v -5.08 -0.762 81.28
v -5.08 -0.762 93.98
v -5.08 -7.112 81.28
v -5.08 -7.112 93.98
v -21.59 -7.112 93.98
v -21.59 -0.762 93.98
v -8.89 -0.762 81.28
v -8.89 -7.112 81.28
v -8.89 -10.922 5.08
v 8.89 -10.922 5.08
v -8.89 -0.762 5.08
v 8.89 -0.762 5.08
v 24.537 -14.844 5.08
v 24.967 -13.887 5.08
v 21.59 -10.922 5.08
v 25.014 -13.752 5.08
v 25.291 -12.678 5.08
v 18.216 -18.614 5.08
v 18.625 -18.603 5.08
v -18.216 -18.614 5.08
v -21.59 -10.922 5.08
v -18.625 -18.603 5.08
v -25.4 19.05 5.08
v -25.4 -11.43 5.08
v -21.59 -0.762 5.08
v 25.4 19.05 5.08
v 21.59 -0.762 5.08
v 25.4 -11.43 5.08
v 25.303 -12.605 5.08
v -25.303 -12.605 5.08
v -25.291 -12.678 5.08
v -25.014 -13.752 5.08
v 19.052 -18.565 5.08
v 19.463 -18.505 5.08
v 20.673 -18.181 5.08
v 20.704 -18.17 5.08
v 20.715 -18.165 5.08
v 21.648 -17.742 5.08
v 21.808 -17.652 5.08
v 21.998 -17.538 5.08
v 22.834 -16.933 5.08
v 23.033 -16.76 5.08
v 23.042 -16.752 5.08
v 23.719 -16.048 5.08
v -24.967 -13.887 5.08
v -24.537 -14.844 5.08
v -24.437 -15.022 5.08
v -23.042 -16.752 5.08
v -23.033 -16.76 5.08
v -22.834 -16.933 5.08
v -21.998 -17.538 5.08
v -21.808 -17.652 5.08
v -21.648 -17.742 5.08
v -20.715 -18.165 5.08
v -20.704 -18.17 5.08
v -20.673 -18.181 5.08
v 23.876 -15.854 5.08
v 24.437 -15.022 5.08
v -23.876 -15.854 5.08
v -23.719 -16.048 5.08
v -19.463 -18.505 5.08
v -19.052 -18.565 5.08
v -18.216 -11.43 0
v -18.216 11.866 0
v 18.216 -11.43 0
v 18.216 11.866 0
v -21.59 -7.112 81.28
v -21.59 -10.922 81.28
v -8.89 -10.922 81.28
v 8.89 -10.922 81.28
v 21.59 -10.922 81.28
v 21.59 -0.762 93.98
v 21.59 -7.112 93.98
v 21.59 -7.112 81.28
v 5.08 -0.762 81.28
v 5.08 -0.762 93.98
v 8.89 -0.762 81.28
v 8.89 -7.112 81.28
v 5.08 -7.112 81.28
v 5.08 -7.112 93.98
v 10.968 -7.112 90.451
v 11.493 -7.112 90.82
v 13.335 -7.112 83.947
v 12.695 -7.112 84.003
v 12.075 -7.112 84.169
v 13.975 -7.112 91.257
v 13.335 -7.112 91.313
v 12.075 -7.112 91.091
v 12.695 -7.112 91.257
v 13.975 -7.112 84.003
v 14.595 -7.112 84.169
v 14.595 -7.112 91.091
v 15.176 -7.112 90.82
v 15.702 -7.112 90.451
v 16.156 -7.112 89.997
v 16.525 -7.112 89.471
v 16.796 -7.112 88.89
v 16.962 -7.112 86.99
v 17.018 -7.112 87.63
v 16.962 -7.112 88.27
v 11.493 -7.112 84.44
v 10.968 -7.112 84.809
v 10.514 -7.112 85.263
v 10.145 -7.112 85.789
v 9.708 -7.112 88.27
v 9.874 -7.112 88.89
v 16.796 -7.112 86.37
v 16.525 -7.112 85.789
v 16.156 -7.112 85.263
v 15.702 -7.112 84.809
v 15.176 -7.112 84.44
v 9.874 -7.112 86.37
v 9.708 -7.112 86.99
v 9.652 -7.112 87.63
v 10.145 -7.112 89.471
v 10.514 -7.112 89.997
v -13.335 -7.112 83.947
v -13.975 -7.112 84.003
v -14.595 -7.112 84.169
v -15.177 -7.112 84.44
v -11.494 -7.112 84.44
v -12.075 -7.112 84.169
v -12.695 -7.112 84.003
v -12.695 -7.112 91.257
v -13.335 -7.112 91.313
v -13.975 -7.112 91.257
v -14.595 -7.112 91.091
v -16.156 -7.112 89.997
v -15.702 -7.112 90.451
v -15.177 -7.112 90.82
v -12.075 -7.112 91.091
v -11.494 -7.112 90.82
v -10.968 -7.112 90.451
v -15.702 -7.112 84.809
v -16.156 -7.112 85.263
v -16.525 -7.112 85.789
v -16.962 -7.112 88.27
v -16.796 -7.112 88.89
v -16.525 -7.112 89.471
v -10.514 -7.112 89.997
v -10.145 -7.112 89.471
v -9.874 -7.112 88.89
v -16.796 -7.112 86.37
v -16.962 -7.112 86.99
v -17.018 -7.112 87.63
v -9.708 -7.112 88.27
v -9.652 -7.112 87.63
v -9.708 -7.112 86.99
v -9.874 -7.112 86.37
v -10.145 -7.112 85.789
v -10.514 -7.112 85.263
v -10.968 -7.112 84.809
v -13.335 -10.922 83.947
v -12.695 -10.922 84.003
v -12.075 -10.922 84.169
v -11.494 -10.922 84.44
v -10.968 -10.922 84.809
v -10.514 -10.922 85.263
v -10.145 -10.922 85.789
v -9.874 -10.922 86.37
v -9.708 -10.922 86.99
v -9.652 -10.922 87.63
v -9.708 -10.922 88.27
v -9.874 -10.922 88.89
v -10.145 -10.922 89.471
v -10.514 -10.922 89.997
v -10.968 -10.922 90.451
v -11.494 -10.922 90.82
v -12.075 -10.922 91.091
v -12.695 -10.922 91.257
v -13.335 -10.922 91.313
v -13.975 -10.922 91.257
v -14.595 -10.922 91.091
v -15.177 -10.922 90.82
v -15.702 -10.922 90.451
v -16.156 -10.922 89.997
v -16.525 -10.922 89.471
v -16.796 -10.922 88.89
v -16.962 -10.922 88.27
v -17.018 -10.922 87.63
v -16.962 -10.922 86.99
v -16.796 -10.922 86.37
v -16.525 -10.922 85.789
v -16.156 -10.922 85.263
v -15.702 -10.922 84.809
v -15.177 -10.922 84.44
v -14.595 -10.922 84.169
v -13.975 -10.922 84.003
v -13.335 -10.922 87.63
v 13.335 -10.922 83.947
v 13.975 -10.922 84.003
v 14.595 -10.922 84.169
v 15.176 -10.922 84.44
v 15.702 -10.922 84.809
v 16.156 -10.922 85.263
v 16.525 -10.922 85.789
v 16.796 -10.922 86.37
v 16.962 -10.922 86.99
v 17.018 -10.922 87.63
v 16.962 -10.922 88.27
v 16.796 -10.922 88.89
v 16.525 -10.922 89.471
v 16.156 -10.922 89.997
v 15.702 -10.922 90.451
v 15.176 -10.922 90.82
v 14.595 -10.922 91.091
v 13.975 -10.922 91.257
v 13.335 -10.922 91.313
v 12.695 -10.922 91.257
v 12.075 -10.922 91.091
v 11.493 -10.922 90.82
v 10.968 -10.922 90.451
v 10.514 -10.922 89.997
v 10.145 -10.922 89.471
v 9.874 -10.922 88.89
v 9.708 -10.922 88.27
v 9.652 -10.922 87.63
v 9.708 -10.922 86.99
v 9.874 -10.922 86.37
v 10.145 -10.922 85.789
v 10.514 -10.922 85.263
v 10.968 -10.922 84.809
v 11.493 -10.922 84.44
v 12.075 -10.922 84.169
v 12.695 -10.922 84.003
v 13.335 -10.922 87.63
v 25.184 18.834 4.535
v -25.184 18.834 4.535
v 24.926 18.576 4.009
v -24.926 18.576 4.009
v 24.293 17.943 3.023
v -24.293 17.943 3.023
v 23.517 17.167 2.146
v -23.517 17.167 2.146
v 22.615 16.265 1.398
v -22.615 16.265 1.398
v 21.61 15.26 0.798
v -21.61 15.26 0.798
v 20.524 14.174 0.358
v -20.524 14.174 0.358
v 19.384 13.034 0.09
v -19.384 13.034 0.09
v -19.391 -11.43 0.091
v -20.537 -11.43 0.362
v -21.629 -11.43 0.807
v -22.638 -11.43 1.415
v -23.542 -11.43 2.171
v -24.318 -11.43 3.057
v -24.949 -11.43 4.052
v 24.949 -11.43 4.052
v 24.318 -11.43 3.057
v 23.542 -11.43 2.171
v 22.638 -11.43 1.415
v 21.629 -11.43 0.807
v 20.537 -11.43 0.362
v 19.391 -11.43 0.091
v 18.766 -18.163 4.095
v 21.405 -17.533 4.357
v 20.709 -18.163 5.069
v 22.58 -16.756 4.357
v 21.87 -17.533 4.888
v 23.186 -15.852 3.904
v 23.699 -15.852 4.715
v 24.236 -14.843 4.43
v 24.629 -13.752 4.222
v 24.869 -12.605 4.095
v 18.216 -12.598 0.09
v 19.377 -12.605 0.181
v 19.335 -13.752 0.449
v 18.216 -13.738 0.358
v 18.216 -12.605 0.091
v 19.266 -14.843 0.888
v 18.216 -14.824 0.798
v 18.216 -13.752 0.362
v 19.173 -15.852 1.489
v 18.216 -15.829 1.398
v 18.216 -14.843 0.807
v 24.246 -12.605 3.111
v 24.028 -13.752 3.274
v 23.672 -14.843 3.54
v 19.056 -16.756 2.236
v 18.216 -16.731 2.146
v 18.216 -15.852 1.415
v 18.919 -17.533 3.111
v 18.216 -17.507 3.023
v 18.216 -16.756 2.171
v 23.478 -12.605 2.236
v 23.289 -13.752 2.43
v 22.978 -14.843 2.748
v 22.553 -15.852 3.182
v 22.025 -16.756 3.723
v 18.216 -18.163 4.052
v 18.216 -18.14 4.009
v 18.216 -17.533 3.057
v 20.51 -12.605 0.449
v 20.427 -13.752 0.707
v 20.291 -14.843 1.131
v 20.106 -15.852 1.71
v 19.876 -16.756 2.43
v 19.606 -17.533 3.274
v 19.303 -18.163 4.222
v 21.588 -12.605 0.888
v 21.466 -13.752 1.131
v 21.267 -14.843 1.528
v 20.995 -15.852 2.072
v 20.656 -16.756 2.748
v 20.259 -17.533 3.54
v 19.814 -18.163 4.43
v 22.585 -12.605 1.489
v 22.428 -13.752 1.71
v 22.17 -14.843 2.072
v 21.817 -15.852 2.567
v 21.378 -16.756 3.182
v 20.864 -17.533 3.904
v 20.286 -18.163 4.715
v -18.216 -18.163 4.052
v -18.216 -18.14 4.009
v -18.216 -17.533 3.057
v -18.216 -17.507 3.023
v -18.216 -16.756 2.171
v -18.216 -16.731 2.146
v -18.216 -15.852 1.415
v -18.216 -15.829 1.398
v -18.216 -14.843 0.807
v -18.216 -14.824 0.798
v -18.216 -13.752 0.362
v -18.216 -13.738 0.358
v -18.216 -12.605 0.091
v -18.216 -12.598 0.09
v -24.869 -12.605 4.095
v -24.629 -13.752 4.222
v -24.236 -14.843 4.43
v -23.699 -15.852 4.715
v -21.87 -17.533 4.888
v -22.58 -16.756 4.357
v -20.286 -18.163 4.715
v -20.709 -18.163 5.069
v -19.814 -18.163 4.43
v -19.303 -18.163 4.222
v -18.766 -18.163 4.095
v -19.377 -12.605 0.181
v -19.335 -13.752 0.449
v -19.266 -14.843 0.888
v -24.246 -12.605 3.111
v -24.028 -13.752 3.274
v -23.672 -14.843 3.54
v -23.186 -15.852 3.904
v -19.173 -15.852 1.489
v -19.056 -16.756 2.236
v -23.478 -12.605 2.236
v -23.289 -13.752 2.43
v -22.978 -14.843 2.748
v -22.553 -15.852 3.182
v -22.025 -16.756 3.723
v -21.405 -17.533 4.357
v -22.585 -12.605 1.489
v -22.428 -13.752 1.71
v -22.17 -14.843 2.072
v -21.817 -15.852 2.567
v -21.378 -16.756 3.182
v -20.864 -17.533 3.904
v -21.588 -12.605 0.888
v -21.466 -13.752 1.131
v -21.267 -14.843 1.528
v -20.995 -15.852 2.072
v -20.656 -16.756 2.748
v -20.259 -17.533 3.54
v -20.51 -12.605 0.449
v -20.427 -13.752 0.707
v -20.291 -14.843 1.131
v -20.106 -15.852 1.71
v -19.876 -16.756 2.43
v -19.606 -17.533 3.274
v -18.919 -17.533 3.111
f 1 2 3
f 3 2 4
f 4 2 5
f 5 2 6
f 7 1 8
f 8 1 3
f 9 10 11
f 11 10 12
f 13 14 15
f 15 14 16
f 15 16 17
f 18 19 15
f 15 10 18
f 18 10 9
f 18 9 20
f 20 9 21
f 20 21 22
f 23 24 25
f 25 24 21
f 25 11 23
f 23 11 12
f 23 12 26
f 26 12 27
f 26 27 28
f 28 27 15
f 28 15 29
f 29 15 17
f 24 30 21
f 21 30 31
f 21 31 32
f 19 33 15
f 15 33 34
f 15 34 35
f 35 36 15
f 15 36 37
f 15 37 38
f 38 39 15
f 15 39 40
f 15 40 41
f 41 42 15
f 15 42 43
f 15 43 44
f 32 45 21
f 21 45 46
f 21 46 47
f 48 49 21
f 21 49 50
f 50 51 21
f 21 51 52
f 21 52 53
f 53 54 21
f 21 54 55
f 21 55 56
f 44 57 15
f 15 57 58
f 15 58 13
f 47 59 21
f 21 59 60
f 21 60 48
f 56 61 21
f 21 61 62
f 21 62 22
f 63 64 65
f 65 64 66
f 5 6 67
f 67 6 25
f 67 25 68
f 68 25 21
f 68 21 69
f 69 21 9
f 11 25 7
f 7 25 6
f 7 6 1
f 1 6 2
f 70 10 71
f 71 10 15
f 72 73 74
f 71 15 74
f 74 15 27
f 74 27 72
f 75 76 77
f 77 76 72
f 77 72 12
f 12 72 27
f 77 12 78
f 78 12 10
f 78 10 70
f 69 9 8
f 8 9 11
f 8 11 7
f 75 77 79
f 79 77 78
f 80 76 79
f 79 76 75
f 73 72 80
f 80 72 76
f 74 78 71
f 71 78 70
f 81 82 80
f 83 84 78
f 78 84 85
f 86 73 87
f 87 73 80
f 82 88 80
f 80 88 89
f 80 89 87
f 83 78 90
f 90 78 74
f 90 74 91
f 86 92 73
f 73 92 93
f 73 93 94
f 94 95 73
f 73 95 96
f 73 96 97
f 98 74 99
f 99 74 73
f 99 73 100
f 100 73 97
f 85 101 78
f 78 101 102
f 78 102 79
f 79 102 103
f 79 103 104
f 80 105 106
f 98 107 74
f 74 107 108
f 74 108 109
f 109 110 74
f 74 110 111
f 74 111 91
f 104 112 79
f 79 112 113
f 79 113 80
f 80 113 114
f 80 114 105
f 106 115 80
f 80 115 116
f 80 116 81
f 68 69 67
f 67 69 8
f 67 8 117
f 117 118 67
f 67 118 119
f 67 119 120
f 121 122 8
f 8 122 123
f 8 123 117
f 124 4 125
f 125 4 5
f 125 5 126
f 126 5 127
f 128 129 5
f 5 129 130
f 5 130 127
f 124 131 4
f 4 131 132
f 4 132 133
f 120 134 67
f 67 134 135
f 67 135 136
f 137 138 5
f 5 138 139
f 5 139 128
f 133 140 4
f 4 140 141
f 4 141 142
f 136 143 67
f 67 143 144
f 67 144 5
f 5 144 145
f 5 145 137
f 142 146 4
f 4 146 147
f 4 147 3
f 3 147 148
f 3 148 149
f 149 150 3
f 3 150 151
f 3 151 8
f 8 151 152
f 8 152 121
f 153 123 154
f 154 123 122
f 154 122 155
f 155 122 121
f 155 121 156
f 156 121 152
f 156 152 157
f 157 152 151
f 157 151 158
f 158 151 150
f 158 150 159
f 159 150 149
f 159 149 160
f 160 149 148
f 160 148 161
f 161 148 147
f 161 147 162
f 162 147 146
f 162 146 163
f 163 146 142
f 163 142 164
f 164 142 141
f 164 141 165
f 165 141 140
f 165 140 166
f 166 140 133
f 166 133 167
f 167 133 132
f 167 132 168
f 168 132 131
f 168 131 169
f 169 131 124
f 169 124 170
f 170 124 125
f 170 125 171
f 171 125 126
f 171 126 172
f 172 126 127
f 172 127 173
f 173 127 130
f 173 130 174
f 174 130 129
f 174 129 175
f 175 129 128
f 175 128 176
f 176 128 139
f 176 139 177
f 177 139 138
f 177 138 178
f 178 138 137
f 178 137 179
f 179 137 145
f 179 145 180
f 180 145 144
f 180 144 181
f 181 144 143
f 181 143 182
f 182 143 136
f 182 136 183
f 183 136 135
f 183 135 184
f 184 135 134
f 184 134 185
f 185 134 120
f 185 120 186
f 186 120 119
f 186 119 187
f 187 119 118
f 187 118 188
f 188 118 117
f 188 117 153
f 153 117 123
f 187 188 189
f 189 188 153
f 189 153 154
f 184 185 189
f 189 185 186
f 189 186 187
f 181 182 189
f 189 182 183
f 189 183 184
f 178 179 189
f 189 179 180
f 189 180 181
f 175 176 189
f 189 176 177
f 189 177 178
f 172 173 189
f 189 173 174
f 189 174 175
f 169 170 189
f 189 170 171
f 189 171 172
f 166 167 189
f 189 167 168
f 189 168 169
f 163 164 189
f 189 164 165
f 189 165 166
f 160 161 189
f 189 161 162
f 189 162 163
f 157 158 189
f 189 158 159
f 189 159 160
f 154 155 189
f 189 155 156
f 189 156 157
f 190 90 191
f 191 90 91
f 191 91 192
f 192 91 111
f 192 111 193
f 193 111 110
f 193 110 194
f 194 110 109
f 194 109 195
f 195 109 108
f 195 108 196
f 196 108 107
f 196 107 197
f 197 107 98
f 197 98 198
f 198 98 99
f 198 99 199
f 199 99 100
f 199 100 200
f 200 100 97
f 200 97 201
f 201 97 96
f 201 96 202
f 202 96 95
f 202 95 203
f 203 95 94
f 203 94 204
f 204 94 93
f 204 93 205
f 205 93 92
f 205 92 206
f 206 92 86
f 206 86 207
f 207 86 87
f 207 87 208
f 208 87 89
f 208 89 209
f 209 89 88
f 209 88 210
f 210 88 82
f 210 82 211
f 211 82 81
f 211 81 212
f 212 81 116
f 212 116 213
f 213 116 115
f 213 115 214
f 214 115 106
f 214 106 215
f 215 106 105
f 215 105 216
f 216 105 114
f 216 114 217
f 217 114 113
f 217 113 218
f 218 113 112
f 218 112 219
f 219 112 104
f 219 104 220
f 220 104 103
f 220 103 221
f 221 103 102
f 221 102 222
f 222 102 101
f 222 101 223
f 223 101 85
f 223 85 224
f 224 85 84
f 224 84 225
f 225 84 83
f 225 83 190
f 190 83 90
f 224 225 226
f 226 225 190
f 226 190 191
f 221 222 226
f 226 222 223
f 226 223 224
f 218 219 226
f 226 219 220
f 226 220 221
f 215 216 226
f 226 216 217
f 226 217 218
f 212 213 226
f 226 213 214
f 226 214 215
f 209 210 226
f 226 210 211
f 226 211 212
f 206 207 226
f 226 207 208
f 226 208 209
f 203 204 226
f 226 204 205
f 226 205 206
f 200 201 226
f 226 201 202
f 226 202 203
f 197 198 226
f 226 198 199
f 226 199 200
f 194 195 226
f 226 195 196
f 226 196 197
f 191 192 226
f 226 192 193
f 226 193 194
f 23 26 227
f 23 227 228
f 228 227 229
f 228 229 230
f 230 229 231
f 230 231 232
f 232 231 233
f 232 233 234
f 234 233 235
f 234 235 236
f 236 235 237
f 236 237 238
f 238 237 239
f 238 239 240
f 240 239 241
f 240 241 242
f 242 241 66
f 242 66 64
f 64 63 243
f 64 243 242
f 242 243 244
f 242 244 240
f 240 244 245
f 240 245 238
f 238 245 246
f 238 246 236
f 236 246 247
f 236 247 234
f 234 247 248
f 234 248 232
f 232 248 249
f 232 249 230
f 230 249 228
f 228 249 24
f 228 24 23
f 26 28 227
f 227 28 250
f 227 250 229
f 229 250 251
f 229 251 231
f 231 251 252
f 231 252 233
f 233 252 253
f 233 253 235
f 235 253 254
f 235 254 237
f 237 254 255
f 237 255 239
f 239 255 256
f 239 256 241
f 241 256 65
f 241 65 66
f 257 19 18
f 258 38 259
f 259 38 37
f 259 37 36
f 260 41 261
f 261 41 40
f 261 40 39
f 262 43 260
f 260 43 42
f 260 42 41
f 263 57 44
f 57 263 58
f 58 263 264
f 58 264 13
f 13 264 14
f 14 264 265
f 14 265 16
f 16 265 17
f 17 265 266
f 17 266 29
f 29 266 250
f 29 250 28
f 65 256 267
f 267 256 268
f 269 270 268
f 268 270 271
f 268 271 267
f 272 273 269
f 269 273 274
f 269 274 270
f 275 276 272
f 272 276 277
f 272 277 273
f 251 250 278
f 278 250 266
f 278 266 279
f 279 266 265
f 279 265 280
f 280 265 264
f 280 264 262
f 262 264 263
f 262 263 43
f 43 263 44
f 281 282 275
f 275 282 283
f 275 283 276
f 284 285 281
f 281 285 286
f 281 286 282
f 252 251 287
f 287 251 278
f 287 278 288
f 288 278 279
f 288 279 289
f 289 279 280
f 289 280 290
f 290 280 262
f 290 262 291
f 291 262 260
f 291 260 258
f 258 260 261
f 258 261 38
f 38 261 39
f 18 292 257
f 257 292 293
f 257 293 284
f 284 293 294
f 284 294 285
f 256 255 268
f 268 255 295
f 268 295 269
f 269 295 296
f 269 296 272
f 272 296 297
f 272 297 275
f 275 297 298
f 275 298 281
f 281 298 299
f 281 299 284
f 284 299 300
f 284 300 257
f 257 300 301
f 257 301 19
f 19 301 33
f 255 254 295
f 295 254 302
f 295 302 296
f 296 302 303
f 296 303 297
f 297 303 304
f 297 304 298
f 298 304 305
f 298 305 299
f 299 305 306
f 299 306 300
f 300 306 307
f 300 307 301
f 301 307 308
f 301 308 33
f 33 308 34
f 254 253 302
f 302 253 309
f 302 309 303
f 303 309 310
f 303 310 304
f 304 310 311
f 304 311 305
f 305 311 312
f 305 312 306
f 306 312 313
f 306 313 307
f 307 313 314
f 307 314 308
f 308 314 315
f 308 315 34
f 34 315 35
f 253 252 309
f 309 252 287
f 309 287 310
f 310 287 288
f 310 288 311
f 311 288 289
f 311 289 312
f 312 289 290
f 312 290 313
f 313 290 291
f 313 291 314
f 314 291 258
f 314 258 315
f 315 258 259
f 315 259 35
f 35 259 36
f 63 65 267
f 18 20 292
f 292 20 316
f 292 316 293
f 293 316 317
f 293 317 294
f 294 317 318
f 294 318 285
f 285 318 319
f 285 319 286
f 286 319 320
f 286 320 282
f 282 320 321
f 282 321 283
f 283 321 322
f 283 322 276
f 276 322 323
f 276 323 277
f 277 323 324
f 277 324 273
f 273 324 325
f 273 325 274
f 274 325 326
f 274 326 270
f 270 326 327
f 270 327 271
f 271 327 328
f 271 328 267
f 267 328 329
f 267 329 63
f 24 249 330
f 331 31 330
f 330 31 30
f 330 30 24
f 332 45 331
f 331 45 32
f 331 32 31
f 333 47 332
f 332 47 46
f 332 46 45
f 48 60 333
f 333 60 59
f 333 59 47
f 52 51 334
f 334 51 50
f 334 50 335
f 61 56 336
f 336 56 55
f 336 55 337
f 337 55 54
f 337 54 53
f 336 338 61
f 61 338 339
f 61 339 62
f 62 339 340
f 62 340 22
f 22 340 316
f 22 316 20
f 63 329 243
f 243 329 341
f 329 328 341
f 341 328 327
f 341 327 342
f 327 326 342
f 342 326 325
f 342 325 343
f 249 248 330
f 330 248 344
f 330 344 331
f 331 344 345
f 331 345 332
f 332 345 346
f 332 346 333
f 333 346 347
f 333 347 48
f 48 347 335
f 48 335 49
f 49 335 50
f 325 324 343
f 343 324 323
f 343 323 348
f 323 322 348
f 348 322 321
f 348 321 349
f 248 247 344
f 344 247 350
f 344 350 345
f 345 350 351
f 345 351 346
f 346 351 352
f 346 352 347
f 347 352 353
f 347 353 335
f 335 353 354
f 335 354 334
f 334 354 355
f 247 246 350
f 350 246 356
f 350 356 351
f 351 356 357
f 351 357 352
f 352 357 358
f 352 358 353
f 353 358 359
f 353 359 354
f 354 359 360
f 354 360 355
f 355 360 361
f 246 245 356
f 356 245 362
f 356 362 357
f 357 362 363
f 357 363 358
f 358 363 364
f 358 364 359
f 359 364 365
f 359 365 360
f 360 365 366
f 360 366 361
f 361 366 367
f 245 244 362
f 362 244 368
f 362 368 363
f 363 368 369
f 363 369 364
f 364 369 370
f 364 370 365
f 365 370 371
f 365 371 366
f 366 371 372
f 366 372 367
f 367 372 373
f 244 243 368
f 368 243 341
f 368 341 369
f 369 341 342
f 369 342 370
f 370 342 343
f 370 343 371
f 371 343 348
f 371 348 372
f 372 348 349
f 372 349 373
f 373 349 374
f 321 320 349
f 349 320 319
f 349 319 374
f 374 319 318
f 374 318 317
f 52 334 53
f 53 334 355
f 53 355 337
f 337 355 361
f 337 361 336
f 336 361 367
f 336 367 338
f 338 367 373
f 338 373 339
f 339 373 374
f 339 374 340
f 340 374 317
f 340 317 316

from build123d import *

# Parameters (mm, degrees)
SKETCH1_W           = 50.8
SKETCH1_H           = 38.1
BOSS_EXTRUDE1_DEPTH = 5.08
SKETCH2_W           = 16.51
SKETCH2_H           = 10.16
BOSS_EXTRUDE2_DEPTH = 76.2
SKETCH3_W           = 3.81
SKETCH3_H           = 10.16
CUT_EXTRUDE1_DEPTH  = 76.2
SKETCH4_W           = 16.51
SKETCH4_H           = 10.16
BOSS_EXTRUDE3_DEPTH = 12.7
SKETCH6_W           = 16.51
SKETCH6_H           = 12.7
CUT_EXTRUDE2_DEPTH  = 3.81
SKETCH5_R           = 3.683
BOSS_EXTRUDE4_DEPTH = 3.81
FILLET1_R           = 7.62
FILLET4_R           = 7.62
FILLET7_R           = 7.62


with BuildPart() as part:
    # Sketch1 → Boss-Extrude1 (new body)
    with BuildSketch(Plane.XY):
        Rectangle(SKETCH1_W, SKETCH1_H)
    extrude(amount=BOSS_EXTRUDE1_DEPTH)

    # Sketch2 → Boss-Extrude2 (add)
    with BuildSketch(Plane.XY.offset(5.08)):
        with Locations((-13.335, -5.842)):
            Rectangle(SKETCH2_W, SKETCH2_H)
        with Locations((13.335, -5.842)):
            Rectangle(SKETCH2_W, SKETCH2_H)
    extrude(amount=BOSS_EXTRUDE2_DEPTH)

    # Sketch3 → Cut-Extrude1 (cut)
    with BuildSketch(Plane.XY.offset(81.28)):
        with Locations((-6.985, -5.842)):
            Rectangle(SKETCH3_W, SKETCH3_H)
        with Locations((6.985, -5.842)):
            Rectangle(SKETCH3_W, SKETCH3_H)
    extrude(amount=-CUT_EXTRUDE1_DEPTH, mode=Mode.SUBTRACT)

    # Sketch4 → Boss-Extrude3 (add)
    with BuildSketch(Plane.XY.offset(81.28)):
        with Locations((-13.335, -5.842)):
            Rectangle(SKETCH4_W, SKETCH4_H)
        with Locations((13.335, -5.842)):
            Rectangle(SKETCH4_W, SKETCH4_H)
    extrude(amount=BOSS_EXTRUDE3_DEPTH)

    # Sketch6 → Cut-Extrude2 (cut)
    with BuildSketch(Plane.XZ.offset(10.922)):
        with Locations((-13.335, 87.63)):
            Rectangle(SKETCH6_W, SKETCH6_H)
        with Locations((13.335, 87.63)):
            Rectangle(SKETCH6_W, SKETCH6_H)
    extrude(amount=-CUT_EXTRUDE2_DEPTH, mode=Mode.SUBTRACT)

    # Sketch5 → Boss-Extrude4 (add)
    with BuildSketch(Plane.XZ.offset(10.922)):
        with Locations(Location((-13.335, 87.63, 0), (0, 0, 270))):
            Circle(SKETCH5_R)
        with Locations(Location((13.335, 87.63, 0), (0, 0, 270))):
            Circle(SKETCH5_R)
    extrude(amount=-BOSS_EXTRUDE4_DEPTH)

    # Fillet1
    # the kernel refuses this fillet: 7.62 mm, written as the material it takes off along each edge
    with BuildSketch(Plane(origin=(-43.360512242, 19.05, 0), x_dir=(0, -1, 0), z_dir=(1, 0, 0))) as fillet1_piece_1:
        with BuildLine():
            CenterArc((7.184204897, -7.62), FILLET1_R, 90, 70.528779366)
            Line((0, -5.08), (-0.143684098, -5.0292))
            ThreePointArc((-0.143684098, -5.0292), (-0.1524, -2.54), (-0.1524, 0))
            Line((-0.1524, 0), (0, 0.1524))
            Line((0, 0.1524), (7.184204897, 0.1524))
            Line((7.184204897, 0.1524), (7.184204897, 0))
        make_face()
    extrude(amount=86.721024484, mode=Mode.SUBTRACT)

    # Fillet4
    # the kernel refuses this fillet: 7.62 mm, written as the material it takes off along each edge
    with BuildSketch(Plane(origin=(-25.4, -37.010512242, 0), x_dir=(0, 0, 1), z_dir=(0, 1, 0)), Plane(origin=(25.4, 29.826307345, 0), x_dir=(0, 0, 1), z_dir=(0, -1, 0))) as fillet4_piece_1:
        with BuildLine():
            CenterArc((7.62, 7.184204897), FILLET4_R, 180, 70.528779366)
            Line((0, 7.184204897), (-0.1524, 7.184204897))
            Line((-0.1524, 7.184204897), (-0.1524, 0))
            Line((-0.1524, 0), (0, -0.1524))
            ThreePointArc((0, -0.1524), (2.54, -0.1524), (5.0292, -0.143684098))
            Line((5.0292, -0.143684098), (5.08, 0))
        make_face()
    extrude(amount=66.836819587, mode=Mode.SUBTRACT)

    # Fillet7
    # the kernel refuses this fillet: 7.62 mm, written as the material it takes off along each edge
    with BuildSketch(Plane(origin=(-18.215795103, -19.05, 7.62), x_dir=(0.5563472554155052, 0, 0.8309498970405103), z_dir=(0.8309498970405103, 0, -0.5563472554155052))) as fillet7_piece_1:
        with BuildLine():
            CenterArc((7.62 - FILLET7_R, -FILLET7_R), FILLET7_R, 0, 90)
            Line((7.62, -FILLET7_R), (7.62, 0))
            Line((7.62, 0), (7.62 - FILLET7_R, 0))
        make_face()
    revolve(axis=Axis((-18.215795103, -19.05, 7.62), (0, -1, 0)), revolution_arc=213.803560609, mode=Mode.SUBTRACT)
    with BuildSketch(Plane(origin=(18.215795103, -19.05, 7.62), x_dir=(-0.5563472554155037, 0, 0.8309498970405114), z_dir=(-0.8309498970405114, 0, -0.5563472554155037))) as fillet7_piece_2:
        with BuildLine():
            CenterArc((7.62 - FILLET7_R, FILLET7_R), FILLET7_R, 270, 90)
            Line((7.62, FILLET7_R), (7.62, 0))
            Line((7.62, 0), (7.62 - FILLET7_R, 0))
        make_face()
    revolve(axis=Axis((18.215795103, -19.05, 7.62), (0, 1, 0)), revolution_arc=213.803560609, mode=Mode.SUBTRACT)
    with BuildSketch(Plane(origin=(18.215795103, -19.05, 0), x_dir=(0, 0, 1), z_dir=(-1, 0, 0))) as fillet7_piece_3:
        with BuildLine():
            CenterArc((FILLET7_R, FILLET7_R), FILLET7_R, 180, 90)
            Line((0, FILLET7_R), (0, 0))
            Line((0, 0), (FILLET7_R, 0))
        make_face()
    extrude(amount=36.431590206, mode=Mode.SUBTRACT)


solid = part.part
